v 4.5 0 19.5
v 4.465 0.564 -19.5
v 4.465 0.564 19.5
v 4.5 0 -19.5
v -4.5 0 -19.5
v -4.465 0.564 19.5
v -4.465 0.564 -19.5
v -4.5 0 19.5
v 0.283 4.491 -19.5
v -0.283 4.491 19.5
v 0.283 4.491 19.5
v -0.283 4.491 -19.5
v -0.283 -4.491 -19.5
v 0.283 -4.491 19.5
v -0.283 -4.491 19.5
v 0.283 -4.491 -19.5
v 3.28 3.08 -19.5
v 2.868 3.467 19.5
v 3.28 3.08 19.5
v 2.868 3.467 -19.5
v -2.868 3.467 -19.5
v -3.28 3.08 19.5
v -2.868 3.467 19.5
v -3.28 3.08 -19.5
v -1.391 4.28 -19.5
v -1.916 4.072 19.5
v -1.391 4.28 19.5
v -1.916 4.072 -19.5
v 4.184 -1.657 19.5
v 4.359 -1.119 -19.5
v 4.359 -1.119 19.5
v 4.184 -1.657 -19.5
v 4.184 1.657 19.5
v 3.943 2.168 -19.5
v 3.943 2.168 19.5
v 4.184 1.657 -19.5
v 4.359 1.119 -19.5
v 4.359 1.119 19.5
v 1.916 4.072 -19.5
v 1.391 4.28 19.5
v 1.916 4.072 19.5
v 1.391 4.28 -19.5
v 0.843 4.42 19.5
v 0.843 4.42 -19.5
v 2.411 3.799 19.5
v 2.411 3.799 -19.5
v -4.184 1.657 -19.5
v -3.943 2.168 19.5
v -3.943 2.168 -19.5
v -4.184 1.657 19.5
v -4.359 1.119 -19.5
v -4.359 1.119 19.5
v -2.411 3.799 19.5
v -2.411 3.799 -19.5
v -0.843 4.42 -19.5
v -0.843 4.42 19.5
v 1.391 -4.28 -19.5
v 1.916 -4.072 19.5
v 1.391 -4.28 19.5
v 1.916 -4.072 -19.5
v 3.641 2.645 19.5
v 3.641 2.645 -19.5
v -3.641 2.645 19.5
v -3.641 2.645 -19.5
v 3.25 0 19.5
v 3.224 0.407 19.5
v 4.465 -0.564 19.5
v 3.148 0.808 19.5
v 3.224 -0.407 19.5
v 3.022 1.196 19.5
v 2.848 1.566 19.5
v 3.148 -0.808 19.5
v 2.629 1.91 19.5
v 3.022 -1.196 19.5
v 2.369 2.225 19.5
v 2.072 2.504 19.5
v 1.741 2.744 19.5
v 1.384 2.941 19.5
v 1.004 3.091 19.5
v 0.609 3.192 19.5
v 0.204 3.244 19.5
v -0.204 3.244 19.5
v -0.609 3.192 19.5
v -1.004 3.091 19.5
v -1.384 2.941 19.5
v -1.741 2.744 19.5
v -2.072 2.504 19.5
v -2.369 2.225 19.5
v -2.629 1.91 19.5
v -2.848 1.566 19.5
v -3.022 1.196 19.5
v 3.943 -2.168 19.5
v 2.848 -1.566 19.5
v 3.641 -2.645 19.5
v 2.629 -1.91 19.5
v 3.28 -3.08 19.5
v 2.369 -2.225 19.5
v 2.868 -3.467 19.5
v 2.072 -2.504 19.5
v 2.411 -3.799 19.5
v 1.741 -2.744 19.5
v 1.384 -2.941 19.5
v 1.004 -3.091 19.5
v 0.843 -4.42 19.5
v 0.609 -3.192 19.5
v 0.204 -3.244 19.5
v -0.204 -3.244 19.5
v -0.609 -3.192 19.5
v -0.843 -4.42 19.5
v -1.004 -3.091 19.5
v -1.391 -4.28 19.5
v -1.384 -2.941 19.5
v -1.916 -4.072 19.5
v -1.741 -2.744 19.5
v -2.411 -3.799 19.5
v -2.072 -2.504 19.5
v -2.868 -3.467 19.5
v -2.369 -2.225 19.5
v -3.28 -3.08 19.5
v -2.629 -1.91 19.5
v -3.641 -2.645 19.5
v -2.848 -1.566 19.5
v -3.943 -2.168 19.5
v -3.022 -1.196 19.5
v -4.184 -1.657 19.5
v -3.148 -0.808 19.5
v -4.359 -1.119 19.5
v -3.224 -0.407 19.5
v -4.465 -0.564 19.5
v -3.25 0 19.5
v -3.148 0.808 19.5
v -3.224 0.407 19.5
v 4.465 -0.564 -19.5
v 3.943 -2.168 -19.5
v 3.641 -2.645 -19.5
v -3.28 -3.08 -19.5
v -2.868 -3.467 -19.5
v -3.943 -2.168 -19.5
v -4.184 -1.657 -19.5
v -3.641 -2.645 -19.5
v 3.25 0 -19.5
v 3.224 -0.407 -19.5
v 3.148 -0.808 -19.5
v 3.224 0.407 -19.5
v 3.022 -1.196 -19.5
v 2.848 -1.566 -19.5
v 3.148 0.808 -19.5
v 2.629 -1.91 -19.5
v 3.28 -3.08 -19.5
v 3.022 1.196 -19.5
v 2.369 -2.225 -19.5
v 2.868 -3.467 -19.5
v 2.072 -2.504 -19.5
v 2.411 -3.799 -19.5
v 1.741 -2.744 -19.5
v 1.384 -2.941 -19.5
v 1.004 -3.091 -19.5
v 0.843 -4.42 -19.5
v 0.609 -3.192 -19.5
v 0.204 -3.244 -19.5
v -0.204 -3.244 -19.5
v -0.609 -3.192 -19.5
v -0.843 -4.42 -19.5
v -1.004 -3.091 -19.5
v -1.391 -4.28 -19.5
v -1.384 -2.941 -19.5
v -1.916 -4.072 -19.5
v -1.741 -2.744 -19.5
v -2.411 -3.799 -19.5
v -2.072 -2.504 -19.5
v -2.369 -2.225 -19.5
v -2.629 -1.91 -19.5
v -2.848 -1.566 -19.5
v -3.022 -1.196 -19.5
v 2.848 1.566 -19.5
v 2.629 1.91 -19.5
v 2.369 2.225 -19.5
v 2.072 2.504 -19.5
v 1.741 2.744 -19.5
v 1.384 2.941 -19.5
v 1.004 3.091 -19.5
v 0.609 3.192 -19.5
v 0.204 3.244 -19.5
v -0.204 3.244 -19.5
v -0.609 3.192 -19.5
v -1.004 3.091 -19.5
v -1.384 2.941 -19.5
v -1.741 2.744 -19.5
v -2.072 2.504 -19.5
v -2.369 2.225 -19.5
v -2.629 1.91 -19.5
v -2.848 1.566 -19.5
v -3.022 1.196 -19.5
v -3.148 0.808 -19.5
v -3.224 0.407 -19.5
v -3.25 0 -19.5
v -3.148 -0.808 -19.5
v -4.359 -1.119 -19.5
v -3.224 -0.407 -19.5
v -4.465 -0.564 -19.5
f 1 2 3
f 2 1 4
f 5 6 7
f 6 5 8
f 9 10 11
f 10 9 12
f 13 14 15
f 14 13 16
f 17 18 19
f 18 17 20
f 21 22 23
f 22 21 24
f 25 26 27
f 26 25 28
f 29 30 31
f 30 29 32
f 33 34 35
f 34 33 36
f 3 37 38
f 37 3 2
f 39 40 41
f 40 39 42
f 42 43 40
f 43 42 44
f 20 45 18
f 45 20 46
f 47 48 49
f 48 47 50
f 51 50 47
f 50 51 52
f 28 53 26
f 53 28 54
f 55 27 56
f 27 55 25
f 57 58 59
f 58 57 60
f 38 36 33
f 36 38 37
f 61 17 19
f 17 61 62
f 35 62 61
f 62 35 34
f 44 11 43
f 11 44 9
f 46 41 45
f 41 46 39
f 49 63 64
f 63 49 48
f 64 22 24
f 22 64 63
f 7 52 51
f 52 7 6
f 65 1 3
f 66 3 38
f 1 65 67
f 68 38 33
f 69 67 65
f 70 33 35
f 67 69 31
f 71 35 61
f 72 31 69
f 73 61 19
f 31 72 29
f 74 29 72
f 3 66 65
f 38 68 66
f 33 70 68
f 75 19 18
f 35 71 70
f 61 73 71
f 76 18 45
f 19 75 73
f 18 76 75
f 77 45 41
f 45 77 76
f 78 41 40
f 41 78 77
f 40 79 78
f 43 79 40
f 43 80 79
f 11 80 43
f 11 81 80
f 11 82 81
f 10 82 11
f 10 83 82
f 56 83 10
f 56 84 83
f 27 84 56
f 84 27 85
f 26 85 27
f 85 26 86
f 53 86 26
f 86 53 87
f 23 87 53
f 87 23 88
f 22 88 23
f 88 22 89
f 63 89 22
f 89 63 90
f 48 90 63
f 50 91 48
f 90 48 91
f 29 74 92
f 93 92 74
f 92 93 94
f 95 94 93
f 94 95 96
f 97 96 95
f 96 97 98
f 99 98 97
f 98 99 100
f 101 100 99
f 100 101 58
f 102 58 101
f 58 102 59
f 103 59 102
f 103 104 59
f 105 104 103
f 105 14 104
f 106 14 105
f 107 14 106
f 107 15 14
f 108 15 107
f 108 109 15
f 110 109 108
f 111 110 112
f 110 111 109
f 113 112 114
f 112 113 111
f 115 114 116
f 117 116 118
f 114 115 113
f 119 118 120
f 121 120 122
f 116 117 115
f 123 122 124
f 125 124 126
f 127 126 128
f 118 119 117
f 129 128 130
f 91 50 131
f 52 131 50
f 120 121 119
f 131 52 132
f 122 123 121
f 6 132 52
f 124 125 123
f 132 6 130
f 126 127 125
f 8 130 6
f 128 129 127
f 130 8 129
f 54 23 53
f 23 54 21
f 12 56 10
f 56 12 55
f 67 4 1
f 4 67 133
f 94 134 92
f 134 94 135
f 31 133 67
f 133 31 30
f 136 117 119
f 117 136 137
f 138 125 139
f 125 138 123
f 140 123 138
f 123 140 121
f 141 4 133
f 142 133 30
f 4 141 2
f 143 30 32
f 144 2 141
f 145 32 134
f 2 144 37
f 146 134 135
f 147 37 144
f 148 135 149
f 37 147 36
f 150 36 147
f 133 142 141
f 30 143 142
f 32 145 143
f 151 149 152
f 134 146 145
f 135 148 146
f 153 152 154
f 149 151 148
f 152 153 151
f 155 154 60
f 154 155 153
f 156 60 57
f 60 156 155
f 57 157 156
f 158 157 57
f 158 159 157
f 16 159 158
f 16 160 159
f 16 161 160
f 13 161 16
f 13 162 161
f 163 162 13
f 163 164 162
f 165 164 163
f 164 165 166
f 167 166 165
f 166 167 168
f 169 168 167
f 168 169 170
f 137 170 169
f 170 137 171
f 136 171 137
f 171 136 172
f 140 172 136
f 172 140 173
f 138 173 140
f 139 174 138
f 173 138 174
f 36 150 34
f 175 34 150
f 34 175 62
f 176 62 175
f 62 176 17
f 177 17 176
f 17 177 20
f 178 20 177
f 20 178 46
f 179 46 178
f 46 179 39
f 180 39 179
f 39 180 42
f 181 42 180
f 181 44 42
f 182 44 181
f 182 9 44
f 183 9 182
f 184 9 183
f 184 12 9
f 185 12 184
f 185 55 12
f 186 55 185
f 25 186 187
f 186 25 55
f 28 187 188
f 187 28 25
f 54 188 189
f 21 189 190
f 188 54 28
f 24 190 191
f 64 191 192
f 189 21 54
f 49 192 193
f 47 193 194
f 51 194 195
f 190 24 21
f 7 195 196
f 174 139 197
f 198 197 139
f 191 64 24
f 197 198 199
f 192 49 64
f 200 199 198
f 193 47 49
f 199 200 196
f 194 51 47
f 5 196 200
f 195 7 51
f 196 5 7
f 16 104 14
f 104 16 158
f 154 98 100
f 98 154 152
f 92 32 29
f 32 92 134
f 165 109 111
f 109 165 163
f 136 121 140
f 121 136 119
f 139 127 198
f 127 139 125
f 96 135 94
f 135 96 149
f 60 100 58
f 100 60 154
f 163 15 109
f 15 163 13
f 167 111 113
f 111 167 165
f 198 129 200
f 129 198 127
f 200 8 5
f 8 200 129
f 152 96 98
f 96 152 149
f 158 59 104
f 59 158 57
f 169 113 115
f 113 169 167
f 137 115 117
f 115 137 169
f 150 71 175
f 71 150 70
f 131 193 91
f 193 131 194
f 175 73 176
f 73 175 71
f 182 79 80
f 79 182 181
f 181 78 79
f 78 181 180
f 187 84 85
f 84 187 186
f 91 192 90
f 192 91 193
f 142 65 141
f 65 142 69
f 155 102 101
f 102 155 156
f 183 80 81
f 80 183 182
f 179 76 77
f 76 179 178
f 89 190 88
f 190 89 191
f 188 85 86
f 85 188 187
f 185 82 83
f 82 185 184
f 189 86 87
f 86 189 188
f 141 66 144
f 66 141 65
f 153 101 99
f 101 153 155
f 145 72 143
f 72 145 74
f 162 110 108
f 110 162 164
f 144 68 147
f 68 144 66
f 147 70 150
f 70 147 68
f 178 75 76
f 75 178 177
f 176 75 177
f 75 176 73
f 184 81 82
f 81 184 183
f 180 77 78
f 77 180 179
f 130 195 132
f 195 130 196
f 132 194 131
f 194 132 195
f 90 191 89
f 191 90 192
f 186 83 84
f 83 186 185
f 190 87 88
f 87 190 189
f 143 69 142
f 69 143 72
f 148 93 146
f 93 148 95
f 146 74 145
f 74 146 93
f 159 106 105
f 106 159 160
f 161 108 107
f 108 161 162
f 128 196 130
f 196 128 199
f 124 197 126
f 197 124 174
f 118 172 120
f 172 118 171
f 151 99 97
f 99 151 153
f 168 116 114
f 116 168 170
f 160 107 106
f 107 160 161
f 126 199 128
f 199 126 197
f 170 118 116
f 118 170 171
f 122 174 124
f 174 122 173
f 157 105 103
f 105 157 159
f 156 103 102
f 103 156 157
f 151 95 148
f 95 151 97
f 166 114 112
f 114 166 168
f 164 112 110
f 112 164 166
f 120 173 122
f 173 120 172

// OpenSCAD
$fn = 50;


difference() {
	union() {
		translate(v = [0, 0, -19.5000000000]) {
			cylinder(h = 39, r = 4.5000000000);
		}
	}
	union() {
		translate(v = [0, 0, -100.0000000000]) {
			cylinder(h = 200, r = 3.2500000000);
		}
	}
}
